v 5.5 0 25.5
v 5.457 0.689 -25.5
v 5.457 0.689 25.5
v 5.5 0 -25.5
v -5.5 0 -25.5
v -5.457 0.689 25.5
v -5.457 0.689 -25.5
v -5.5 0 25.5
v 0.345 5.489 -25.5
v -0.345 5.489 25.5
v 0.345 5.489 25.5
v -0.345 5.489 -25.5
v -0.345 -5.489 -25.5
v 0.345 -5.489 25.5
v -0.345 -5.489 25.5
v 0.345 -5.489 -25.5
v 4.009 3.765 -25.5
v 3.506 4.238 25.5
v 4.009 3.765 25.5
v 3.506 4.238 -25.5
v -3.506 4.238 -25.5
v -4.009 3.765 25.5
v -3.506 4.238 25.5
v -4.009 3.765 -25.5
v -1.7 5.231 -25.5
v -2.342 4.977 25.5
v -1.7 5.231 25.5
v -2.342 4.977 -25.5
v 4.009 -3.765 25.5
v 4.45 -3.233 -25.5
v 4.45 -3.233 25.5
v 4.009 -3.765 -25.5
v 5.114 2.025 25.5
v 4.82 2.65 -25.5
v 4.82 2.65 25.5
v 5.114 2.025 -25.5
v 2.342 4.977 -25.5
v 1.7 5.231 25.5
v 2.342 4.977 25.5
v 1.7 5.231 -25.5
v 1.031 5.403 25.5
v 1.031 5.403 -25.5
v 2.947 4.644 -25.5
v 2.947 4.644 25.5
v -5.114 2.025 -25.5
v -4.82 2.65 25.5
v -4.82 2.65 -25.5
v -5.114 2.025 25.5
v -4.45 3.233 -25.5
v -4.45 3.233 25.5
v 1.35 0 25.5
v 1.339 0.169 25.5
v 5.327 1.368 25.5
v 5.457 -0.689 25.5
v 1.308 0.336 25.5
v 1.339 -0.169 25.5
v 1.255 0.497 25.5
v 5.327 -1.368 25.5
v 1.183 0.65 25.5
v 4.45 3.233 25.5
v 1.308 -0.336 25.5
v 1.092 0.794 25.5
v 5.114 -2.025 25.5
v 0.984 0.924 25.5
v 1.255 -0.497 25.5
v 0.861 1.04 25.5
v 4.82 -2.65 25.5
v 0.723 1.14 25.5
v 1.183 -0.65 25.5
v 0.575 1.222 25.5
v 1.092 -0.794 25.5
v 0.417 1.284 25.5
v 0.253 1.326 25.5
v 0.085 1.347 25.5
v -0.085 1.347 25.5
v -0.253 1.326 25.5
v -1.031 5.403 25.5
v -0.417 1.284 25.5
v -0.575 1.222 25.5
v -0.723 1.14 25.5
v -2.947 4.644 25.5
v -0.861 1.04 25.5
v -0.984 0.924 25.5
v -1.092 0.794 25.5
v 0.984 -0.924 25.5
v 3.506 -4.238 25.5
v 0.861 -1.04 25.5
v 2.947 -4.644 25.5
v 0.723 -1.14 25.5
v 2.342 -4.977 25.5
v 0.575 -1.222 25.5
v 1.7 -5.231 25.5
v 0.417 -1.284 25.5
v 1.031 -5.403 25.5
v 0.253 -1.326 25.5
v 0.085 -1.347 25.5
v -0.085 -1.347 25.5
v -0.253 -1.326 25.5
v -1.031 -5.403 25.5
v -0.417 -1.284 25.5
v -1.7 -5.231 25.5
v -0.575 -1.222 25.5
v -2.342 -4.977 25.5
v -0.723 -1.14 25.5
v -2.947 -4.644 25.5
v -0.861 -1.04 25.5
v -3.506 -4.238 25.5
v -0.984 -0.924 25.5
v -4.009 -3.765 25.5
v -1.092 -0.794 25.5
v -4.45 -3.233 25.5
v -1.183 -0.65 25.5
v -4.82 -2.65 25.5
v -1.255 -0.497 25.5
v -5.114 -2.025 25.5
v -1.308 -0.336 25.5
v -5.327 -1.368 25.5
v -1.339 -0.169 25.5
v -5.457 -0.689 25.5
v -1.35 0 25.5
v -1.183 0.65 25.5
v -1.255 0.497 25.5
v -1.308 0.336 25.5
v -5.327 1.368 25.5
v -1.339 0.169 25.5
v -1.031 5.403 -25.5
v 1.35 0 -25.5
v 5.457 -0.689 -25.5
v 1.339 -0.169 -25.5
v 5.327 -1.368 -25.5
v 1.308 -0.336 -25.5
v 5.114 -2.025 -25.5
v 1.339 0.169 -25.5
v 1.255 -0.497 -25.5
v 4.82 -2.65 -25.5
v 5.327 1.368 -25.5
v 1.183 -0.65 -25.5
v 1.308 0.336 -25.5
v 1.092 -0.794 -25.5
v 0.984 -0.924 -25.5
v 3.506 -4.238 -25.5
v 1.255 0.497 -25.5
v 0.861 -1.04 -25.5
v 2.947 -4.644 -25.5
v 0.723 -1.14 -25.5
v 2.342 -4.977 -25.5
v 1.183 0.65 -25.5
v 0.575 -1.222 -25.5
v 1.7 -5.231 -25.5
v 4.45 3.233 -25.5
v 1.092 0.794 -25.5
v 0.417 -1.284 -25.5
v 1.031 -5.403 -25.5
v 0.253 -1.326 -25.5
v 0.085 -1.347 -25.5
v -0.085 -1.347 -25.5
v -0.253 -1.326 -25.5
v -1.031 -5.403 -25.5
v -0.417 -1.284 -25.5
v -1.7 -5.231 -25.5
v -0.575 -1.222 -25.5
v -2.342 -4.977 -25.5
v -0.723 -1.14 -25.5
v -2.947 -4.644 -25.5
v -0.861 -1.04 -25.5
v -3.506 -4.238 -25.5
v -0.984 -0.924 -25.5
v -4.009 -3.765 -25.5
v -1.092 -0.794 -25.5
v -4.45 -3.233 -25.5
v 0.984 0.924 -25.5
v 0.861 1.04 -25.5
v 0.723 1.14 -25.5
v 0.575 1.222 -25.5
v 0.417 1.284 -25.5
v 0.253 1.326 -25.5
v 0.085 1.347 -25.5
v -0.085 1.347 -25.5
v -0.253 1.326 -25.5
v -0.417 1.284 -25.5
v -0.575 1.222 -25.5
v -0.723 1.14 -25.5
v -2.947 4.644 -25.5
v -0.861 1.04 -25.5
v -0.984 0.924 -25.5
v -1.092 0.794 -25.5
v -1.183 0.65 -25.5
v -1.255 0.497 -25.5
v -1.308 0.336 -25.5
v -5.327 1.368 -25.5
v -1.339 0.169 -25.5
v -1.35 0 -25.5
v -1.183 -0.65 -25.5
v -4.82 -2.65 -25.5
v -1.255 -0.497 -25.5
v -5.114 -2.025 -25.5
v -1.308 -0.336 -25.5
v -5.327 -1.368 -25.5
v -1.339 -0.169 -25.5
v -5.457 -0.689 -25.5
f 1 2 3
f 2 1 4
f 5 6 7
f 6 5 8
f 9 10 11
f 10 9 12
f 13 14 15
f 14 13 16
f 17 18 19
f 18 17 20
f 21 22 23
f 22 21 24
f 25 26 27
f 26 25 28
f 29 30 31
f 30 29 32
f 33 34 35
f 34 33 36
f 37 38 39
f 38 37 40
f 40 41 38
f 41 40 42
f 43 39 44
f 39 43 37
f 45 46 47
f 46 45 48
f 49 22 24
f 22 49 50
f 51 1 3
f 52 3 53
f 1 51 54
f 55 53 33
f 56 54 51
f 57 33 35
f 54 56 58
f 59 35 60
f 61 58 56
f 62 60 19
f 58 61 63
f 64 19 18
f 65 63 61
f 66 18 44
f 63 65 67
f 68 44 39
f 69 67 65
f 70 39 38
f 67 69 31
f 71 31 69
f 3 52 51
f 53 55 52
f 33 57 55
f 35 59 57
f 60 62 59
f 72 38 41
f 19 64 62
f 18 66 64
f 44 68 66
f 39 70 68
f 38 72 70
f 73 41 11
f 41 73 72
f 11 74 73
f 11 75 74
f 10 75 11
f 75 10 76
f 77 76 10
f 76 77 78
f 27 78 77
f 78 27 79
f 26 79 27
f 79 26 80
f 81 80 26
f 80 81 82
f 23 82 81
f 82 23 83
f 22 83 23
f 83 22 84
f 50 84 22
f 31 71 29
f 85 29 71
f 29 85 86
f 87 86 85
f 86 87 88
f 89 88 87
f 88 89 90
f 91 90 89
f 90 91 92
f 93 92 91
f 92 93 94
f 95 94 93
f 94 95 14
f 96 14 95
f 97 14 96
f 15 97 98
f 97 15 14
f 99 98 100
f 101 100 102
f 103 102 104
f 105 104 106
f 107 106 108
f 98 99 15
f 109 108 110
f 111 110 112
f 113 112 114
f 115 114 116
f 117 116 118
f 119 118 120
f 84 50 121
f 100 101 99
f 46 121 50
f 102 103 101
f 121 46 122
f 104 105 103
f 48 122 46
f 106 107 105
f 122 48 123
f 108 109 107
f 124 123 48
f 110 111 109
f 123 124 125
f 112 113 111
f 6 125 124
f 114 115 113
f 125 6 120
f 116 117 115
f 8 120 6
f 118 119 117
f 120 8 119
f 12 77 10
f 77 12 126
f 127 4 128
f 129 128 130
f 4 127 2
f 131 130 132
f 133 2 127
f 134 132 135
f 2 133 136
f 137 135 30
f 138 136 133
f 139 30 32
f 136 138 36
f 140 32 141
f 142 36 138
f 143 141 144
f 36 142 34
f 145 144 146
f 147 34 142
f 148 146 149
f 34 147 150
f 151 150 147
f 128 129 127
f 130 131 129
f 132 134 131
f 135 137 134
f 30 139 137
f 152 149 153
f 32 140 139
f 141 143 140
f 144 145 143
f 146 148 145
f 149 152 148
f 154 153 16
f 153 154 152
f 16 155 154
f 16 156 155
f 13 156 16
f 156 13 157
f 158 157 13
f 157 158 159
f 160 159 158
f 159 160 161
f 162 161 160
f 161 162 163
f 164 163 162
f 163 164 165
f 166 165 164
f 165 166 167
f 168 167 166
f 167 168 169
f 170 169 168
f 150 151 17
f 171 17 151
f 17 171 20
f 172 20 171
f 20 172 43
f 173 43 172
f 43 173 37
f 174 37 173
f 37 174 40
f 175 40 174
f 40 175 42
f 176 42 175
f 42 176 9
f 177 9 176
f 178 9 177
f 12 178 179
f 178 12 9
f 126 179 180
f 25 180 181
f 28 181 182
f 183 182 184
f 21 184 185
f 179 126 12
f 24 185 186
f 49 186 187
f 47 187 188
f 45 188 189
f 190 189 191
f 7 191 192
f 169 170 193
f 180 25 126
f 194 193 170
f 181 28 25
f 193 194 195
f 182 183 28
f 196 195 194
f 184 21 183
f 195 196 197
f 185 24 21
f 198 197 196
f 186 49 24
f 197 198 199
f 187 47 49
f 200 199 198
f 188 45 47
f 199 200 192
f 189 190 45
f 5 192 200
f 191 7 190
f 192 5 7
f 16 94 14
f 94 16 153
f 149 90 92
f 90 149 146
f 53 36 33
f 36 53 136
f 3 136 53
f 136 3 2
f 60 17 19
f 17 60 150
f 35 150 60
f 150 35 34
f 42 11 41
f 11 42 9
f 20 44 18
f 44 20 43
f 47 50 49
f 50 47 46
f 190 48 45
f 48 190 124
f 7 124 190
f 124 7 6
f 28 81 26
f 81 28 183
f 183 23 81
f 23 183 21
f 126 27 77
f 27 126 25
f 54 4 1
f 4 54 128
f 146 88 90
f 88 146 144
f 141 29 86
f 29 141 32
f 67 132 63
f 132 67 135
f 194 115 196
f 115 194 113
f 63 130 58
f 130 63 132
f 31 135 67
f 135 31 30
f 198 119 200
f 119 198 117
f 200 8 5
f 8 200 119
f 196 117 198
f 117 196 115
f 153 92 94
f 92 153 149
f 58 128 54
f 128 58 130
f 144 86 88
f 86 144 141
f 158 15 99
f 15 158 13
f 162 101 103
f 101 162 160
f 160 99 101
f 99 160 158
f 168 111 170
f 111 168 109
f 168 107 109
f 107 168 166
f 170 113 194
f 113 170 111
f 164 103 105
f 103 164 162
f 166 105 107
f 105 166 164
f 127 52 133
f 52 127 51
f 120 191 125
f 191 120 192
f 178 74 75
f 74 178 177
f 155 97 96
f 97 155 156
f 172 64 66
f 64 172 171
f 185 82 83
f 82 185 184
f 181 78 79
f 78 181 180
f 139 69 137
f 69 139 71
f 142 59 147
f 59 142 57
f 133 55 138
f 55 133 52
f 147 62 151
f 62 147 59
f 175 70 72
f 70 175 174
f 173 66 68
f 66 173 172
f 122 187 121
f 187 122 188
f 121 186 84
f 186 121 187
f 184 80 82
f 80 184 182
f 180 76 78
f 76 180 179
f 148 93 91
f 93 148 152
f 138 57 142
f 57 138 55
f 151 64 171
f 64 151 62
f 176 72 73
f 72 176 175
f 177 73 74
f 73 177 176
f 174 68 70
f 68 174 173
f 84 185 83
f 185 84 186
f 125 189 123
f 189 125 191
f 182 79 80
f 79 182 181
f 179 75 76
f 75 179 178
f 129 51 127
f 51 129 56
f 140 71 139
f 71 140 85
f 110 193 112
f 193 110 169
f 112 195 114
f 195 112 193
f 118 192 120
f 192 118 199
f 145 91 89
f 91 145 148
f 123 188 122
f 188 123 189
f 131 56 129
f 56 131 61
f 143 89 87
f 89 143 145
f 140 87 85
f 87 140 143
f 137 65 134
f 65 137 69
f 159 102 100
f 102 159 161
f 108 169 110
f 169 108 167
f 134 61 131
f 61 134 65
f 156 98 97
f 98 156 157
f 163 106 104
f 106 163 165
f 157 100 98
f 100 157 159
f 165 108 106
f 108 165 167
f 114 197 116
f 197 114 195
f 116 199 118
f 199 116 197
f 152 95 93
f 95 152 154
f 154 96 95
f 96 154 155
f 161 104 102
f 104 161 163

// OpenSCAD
$fn = 50;


difference() {
	union() {
		translate(v = [0, 0, -25.5000000000]) {
			cylinder(h = 51, r = 5.5000000000);
		}
	}
	union() {
		translate(v = [0, 0, -100.0000000000]) {
			cylinder(h = 200, r = 1.3500000000);
		}
	}
}
